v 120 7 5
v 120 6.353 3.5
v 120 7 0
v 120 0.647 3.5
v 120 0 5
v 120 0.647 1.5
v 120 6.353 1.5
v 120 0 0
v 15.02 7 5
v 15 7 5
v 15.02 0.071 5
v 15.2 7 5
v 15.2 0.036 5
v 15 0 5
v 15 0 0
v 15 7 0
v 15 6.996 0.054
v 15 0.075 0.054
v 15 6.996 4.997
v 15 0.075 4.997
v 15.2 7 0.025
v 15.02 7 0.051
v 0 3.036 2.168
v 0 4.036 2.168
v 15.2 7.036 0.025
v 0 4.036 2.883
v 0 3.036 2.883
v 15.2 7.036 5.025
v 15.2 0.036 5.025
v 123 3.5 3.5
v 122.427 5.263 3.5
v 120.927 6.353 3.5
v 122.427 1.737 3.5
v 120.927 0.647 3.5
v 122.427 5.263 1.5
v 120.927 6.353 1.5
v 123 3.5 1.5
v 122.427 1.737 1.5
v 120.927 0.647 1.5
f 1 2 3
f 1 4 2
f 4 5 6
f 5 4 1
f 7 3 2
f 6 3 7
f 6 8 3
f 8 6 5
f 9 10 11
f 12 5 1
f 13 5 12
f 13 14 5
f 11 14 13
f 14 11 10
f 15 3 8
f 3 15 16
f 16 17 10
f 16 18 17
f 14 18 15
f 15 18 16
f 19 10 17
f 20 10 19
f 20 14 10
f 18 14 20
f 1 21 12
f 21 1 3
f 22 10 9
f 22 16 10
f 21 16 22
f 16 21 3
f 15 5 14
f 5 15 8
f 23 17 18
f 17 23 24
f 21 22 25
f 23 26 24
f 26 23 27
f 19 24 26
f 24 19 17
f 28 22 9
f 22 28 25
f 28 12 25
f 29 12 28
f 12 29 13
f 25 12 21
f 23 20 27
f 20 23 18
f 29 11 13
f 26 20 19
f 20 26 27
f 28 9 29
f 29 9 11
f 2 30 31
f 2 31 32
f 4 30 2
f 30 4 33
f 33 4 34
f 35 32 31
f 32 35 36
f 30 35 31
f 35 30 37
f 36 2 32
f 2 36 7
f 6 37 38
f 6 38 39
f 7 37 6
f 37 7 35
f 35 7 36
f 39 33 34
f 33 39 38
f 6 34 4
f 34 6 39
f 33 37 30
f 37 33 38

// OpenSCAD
translate([15, 0, 0] ) {
    cube([105,7,5],false);
}
resize([15.2, 7, 5]) {
    translate([0, 2.5, 2.5] ) {
        rotate([0, 90, 0]) {
            rotate([0, 0, 45]) {
                cylinder(h=15, r1=0.5, r2=3.5, center=false, $fn=4);
            }
        }
    }
}

translate([120, 3.5, 1.5]) {
    cylinder(h=2, r=3);
}
